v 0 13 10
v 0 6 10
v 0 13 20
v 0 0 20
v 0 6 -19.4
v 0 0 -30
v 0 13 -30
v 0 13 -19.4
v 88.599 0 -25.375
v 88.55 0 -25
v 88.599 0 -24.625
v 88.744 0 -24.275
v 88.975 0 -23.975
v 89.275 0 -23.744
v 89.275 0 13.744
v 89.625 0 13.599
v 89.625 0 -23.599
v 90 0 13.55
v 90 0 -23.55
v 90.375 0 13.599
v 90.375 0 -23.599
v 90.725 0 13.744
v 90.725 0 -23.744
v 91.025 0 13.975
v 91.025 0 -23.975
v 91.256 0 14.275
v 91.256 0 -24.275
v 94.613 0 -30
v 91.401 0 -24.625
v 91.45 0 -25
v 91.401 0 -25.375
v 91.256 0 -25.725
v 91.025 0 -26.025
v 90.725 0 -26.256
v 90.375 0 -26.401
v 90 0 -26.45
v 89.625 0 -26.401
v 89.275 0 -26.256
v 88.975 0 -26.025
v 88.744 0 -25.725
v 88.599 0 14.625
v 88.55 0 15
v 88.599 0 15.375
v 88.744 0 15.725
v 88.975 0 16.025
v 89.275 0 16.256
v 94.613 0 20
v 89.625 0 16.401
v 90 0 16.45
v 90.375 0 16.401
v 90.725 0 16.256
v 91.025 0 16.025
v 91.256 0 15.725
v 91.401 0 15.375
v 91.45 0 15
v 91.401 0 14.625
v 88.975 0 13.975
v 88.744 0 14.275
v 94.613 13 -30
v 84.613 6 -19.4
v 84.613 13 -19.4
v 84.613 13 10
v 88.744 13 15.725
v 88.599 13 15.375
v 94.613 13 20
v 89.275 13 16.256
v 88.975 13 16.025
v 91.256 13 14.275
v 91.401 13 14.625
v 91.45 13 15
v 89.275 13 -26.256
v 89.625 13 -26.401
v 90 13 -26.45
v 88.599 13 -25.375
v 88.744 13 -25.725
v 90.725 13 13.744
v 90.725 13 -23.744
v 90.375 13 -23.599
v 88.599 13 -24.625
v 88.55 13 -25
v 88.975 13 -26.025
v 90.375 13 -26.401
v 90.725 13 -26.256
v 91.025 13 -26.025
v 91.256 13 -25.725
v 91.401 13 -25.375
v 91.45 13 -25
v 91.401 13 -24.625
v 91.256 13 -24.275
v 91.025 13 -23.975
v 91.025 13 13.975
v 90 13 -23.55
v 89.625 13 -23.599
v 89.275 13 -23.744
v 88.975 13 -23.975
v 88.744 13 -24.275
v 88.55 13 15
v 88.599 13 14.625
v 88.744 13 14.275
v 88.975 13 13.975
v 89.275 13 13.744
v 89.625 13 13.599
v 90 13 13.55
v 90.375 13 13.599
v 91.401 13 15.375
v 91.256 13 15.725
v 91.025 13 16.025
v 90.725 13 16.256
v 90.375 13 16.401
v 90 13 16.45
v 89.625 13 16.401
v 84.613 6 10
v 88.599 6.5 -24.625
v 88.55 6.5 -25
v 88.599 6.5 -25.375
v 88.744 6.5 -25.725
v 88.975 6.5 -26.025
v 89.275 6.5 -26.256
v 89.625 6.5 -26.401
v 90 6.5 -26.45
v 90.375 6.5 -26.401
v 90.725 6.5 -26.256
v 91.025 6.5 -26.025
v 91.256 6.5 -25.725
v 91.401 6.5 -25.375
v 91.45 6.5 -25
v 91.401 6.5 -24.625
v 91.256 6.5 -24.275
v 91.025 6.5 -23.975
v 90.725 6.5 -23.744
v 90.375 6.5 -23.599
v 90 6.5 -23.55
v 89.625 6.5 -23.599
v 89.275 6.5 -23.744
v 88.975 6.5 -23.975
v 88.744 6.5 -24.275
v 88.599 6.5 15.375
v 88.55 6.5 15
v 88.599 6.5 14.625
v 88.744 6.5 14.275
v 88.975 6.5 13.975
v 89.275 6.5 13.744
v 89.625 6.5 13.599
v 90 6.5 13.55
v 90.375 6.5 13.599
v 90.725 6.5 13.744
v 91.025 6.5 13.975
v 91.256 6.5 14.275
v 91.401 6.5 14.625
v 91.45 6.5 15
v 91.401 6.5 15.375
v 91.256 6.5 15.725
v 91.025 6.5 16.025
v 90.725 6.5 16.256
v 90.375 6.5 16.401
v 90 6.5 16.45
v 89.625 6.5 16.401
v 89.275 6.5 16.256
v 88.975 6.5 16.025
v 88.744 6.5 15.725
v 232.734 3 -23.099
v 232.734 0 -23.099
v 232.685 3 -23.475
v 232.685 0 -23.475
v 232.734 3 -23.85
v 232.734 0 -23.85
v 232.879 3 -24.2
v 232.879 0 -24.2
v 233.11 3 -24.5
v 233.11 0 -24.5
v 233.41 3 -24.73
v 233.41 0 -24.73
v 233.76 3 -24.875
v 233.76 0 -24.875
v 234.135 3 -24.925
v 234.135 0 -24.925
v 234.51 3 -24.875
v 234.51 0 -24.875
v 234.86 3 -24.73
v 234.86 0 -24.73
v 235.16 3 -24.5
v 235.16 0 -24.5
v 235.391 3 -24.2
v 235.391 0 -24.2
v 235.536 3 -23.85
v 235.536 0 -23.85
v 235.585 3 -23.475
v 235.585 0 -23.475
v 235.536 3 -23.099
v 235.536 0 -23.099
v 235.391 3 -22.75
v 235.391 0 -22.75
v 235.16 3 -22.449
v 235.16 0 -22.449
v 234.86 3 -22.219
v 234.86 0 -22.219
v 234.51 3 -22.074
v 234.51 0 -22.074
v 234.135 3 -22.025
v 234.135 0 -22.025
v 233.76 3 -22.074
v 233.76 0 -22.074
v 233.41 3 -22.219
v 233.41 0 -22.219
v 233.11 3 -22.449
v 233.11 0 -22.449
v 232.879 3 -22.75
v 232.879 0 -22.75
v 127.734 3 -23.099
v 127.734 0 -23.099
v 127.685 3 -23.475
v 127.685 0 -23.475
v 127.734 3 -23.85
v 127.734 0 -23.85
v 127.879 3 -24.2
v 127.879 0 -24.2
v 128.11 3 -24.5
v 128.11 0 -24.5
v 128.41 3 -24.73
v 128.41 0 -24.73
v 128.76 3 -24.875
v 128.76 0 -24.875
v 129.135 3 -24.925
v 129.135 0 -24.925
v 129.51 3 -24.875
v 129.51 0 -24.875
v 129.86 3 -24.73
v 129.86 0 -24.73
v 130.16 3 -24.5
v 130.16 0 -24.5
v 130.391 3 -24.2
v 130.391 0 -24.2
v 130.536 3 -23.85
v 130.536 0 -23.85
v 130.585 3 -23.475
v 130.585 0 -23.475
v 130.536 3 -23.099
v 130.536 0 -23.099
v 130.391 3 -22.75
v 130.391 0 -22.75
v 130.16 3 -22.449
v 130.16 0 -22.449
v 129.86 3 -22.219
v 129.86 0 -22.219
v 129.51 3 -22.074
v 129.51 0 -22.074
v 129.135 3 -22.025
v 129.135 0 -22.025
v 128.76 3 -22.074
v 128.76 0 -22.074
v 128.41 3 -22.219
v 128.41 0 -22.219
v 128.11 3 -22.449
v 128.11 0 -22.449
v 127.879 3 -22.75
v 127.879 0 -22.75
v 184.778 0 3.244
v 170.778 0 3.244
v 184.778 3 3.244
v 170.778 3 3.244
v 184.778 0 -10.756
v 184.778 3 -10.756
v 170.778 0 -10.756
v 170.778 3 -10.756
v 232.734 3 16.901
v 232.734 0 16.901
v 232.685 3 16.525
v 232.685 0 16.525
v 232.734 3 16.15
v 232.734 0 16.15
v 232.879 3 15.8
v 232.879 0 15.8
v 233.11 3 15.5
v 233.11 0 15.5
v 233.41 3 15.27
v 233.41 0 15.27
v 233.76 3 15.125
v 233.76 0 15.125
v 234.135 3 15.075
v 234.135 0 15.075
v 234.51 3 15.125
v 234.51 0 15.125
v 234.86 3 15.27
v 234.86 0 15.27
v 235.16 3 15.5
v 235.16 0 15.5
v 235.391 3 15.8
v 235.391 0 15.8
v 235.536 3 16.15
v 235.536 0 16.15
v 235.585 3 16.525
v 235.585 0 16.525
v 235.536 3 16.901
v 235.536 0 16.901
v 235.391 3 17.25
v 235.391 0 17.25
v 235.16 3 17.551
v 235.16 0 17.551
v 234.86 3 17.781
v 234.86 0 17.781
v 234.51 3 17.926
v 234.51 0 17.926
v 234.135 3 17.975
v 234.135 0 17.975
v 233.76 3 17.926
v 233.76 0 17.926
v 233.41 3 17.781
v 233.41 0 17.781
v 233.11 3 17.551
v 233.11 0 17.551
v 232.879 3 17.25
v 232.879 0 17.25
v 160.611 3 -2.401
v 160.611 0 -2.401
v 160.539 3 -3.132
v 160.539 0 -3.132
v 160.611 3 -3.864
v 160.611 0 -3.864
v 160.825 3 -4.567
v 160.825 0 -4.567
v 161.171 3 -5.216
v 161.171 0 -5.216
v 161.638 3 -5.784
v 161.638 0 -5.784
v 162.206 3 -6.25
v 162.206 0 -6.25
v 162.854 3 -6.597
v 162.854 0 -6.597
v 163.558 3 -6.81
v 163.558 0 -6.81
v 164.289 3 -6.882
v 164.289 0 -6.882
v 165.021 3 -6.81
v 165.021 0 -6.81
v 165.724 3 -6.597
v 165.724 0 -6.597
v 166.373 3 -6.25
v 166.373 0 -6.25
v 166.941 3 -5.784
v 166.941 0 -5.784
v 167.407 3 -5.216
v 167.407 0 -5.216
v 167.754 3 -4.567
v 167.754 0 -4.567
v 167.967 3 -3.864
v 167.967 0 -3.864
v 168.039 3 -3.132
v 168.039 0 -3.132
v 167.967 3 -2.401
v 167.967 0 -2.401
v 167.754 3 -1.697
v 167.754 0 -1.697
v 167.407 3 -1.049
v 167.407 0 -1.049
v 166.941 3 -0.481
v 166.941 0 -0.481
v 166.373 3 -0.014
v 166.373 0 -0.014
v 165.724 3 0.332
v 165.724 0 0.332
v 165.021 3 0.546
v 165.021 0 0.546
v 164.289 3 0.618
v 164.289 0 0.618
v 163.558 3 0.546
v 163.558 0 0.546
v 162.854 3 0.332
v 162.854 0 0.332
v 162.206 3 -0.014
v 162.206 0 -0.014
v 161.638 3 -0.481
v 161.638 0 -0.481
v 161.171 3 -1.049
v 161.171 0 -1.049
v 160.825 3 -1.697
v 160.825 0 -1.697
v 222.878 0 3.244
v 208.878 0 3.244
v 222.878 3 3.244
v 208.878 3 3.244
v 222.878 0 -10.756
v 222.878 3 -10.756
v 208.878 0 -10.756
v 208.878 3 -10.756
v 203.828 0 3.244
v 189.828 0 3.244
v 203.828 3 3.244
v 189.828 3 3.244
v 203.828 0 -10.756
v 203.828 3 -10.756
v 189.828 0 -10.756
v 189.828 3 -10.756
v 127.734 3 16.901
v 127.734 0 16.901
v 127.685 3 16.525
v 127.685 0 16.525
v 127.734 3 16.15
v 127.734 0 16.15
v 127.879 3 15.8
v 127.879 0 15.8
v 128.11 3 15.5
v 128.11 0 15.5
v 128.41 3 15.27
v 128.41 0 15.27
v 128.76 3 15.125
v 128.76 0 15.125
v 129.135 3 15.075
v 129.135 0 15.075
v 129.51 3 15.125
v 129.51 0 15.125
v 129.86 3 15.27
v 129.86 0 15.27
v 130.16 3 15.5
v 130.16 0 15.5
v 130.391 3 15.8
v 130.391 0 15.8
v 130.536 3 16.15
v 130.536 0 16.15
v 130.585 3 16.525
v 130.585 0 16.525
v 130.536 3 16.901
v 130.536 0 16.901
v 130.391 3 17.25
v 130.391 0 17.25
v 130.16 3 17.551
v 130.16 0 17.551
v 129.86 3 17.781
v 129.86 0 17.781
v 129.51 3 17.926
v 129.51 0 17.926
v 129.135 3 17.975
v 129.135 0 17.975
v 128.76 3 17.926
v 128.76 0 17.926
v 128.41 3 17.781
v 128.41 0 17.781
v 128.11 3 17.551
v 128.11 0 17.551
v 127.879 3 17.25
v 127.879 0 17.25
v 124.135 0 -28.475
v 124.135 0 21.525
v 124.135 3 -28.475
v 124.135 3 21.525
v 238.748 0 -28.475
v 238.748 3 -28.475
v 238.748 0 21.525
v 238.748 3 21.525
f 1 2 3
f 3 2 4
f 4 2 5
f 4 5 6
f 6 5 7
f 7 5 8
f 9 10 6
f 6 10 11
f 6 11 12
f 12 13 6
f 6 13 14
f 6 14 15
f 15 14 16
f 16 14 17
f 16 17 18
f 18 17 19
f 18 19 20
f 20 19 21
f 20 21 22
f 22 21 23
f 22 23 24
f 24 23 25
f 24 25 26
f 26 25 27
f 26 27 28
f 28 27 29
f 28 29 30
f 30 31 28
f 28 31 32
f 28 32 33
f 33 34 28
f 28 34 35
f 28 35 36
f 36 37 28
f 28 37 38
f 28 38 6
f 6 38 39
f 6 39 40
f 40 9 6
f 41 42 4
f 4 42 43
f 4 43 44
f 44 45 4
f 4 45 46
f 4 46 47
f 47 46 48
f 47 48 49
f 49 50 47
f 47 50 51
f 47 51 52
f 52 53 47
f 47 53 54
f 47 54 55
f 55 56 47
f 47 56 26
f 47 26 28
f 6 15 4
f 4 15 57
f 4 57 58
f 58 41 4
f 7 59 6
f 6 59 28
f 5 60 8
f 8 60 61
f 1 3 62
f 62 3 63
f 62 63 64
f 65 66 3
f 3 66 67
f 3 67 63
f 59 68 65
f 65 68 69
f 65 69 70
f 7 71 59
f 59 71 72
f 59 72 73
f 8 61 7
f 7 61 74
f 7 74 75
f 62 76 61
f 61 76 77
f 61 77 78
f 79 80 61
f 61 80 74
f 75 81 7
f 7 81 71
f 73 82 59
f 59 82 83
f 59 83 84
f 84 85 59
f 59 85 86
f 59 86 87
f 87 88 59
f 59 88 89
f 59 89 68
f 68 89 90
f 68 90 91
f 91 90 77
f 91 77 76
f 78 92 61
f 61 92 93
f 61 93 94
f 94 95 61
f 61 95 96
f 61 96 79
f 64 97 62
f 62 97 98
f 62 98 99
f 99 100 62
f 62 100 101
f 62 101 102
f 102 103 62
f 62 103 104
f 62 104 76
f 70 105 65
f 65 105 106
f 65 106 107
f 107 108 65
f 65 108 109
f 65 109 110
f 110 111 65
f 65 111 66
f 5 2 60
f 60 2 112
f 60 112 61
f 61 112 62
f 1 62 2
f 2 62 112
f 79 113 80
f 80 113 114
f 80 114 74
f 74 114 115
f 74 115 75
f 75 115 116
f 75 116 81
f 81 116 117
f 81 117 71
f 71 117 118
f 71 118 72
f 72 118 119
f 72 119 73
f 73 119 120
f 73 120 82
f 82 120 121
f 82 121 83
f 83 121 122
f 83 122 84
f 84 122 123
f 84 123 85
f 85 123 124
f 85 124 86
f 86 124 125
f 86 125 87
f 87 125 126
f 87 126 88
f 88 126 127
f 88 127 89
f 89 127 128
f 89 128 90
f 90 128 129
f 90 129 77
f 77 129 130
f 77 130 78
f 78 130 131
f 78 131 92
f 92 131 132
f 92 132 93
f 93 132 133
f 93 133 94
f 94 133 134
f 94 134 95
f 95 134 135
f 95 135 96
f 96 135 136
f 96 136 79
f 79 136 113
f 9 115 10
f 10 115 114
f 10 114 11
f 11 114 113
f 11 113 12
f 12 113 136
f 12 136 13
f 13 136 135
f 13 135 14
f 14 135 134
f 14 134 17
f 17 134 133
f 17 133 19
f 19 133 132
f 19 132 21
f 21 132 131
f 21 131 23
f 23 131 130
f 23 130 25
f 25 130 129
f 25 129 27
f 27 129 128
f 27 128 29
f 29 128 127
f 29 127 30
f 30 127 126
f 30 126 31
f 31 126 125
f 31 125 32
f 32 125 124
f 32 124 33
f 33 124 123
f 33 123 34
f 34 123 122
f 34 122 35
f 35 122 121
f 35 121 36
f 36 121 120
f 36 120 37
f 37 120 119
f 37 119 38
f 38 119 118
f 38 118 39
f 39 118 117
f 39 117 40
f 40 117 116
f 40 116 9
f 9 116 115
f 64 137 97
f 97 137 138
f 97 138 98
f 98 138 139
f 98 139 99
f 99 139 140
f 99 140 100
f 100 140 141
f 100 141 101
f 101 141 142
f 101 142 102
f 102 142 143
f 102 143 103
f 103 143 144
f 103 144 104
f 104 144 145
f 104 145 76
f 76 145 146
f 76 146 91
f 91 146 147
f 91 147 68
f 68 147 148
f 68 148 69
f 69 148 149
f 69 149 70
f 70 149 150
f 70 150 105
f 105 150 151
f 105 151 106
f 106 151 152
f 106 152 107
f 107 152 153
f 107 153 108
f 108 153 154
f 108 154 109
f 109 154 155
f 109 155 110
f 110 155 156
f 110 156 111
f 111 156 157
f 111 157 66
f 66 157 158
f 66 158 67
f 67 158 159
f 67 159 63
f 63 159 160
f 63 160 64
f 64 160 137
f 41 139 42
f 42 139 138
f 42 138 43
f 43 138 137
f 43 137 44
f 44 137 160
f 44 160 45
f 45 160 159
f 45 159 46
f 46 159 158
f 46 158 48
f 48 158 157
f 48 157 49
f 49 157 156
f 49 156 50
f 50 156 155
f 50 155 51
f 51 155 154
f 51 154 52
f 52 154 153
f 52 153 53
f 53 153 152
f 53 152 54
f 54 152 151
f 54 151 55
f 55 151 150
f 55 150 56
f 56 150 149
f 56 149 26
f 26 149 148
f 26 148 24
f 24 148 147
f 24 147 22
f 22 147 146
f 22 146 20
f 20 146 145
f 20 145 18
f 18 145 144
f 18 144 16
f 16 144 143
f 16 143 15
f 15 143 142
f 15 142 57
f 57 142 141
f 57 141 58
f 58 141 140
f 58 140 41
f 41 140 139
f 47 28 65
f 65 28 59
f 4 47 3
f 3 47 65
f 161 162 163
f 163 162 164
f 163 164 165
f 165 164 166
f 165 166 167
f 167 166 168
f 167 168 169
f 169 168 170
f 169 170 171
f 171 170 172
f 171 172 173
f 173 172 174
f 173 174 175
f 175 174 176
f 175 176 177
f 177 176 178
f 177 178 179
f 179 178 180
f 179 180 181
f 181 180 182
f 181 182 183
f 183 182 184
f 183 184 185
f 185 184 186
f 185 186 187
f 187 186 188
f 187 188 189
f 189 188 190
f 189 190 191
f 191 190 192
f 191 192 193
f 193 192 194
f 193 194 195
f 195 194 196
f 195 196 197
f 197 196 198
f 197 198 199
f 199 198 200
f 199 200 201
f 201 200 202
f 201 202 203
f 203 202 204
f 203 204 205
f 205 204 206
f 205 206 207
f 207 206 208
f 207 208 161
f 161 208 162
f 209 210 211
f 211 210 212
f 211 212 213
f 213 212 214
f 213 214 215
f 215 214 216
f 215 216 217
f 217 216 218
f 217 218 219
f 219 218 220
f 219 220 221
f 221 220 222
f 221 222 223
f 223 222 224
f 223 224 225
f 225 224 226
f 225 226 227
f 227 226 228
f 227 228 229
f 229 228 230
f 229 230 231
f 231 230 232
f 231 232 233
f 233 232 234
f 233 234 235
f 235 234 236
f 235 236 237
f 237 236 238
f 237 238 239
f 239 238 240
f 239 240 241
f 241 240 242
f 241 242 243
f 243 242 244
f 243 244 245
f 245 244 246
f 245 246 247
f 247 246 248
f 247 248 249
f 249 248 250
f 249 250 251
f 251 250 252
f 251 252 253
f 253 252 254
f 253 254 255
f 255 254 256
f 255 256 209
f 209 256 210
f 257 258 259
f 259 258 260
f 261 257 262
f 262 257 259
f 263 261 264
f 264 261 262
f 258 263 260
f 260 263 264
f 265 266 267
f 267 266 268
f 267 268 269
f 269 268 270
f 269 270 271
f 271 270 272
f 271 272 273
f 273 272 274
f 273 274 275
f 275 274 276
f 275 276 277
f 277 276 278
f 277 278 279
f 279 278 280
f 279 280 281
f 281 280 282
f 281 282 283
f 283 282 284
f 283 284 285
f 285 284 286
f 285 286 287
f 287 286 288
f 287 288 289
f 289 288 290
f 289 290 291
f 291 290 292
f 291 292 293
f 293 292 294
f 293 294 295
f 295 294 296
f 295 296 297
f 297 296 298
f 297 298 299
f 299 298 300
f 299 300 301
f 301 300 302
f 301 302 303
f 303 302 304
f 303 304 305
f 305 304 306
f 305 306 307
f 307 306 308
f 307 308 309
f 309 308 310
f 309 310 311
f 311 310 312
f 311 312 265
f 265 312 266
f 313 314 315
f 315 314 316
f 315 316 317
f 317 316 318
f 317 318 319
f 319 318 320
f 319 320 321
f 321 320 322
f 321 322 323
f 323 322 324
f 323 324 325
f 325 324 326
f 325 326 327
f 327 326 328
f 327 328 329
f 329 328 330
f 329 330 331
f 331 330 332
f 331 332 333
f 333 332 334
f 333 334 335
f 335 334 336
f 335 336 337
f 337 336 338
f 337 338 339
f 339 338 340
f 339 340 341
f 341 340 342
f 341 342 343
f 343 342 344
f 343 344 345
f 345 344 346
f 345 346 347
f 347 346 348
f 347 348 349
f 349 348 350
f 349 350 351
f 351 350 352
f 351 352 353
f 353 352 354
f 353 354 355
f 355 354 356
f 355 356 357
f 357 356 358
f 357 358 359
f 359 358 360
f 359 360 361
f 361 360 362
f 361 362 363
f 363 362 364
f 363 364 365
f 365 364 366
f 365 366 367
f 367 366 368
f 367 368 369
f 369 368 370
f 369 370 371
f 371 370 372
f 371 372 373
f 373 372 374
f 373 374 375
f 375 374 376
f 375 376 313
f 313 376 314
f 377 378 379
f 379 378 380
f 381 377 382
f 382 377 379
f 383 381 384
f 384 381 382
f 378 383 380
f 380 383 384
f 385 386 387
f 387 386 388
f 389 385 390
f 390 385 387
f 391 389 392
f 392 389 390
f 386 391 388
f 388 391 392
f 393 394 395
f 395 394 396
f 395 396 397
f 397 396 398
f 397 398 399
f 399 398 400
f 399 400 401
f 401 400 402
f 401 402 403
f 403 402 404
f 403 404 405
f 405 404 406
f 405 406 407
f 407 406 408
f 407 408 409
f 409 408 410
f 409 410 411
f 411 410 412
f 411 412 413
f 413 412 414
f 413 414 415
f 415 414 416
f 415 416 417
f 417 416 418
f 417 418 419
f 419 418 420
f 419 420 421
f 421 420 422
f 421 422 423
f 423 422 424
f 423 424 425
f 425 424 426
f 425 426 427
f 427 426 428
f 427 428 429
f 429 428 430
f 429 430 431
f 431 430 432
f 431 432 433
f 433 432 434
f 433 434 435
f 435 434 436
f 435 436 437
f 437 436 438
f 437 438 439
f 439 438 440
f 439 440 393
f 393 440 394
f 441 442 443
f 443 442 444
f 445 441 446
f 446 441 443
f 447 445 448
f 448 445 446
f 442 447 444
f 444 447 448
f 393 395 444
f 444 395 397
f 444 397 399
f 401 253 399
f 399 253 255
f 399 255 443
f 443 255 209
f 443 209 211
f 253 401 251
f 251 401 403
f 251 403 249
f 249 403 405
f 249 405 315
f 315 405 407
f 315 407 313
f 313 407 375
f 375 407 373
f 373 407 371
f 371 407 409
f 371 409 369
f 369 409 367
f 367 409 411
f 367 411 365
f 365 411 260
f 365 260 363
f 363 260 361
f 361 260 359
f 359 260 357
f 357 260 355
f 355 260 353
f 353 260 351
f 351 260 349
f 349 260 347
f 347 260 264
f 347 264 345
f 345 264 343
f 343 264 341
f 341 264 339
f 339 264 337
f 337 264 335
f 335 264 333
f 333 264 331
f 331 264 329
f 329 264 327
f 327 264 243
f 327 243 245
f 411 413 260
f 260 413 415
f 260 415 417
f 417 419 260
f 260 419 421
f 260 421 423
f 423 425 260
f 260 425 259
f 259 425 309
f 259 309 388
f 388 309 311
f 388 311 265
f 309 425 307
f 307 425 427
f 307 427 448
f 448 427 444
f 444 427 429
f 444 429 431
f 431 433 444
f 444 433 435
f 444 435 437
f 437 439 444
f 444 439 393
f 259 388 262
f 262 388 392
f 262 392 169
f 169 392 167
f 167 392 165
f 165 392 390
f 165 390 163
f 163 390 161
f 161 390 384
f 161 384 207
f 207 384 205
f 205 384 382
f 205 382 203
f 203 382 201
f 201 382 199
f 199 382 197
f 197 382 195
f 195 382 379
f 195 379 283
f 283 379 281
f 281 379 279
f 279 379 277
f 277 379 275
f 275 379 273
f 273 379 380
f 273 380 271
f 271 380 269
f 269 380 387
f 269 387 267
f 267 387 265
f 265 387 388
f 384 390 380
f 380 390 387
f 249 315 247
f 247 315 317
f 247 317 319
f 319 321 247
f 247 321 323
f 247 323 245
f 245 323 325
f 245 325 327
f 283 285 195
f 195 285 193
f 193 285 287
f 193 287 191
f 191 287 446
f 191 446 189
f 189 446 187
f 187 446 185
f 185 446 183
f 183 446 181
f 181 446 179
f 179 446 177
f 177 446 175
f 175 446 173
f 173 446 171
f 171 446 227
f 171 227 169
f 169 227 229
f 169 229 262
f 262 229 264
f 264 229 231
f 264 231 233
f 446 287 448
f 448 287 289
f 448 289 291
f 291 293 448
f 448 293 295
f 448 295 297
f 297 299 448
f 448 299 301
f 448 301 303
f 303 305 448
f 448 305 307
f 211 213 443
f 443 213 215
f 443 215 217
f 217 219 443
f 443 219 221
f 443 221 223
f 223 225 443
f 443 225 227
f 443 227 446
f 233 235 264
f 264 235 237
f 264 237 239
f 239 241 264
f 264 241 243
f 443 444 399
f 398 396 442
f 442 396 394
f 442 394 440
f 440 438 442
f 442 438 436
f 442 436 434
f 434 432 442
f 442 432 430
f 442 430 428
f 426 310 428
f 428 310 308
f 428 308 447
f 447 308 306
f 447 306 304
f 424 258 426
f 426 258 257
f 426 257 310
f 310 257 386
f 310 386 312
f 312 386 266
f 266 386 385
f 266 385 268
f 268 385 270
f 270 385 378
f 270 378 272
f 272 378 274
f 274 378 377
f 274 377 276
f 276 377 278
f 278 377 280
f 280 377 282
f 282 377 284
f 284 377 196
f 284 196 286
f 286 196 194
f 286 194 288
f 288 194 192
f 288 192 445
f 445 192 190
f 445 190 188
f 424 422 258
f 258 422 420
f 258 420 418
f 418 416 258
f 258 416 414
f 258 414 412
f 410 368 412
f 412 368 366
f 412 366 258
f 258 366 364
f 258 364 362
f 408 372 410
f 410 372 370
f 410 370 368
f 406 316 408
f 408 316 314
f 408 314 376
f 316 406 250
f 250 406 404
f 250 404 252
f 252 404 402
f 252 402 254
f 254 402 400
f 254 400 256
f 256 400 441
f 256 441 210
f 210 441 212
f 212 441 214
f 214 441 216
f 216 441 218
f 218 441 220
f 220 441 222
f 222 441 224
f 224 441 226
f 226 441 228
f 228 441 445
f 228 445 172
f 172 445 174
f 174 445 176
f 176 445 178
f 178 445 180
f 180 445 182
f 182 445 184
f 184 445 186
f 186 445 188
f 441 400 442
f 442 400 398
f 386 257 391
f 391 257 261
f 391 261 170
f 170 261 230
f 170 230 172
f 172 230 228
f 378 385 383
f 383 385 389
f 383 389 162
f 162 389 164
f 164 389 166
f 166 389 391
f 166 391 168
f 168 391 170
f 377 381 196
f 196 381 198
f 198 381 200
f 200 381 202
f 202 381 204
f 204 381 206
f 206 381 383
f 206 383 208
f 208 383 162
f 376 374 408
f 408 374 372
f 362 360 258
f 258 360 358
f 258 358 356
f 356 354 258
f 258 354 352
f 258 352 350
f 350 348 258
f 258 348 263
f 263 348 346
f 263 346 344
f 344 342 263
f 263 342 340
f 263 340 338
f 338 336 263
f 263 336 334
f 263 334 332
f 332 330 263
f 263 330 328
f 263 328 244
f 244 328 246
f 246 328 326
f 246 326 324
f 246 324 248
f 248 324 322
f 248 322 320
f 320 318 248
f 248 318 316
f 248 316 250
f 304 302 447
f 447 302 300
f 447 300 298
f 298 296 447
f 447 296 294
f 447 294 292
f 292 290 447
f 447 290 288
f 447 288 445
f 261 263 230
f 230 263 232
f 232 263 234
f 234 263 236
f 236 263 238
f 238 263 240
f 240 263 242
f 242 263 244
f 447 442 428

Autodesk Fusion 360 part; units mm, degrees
sketch "Sketch1" plane through (0, 0, 0) normal (0, 1, 0) x (1, 0, 0)
  line L0 (-9.7865, 19.4) -> (84.6135, 19.4)
  line L1 (84.6135, 19.4) -> (84.6135, -10)
  line L2 (84.6135, -10) -> (-9.7865, -10)
  line L3 (-9.7865, -10) -> (-9.7865, 19.4)
  line L4 (-20, 30) -> (94.6135, 30)
  line L5 (94.6135, 30) -> (94.6135, -20)
  line L6 (94.6135, -20) -> (-20, -20)
  line L7 (-20, -20) -> (-20, 30)
  circle A0 centre (-15, 25) radius 1.45
  circle A1 centre (-15, -15) radius 1.45
  circle A2 centre (90, -15) radius 1.45
  circle A3 centre (90, 25) radius 1.45
  dimension "d1" = 94.4
  dimension "d2" = 29.4
  dimension "d5" = 2.9
  dimension "d6" = 2.9
  dimension "d7" = 2.9
  dimension "d8" = 2.9
extrude "Extrude4" add sketch "Sketch1" along normal blind 13 makes body 1
extrude "Extrude5" add sketch "Sketch1" along normal blind 3 contours L0 L1 L2 L3 bodies 1
sketch "kbplate" plane through (0, 0, 0) normal (0, 1, 0) x (1, 0, 0)
  line L0 (170.778, -3.2441) -> (184.778, -3.2441)
  line L1 (184.778, 10.7559) -> (170.778, 10.7559)
  line L2 (184.778, -3.2441) -> (184.778, 10.7559)
  line L3 (170.778, 10.7559) -> (170.778, -3.2441)
  line L4 (189.828, -3.2441) -> (203.828, -3.2441)
  line L5 (203.828, 10.7559) -> (189.828, 10.7559)
  line L6 (203.828, -3.2441) -> (203.828, 10.7559)
  line L7 (189.828, 10.7559) -> (189.828, -3.2441)
  line L8 (208.878, -3.2441) -> (222.878, -3.2441)
  line L9 (222.878, 10.7559) -> (208.878, 10.7559)
  line L10 (222.878, -3.2441) -> (222.878, 10.7559)
  line L11 (208.878, 10.7559) -> (208.878, -3.2441)
  circle A0 centre (164.2894, 3.1324) radius 3.75
  circle A1 centre (129.135, -16.5252) radius 1.45
  line L12 (238.7484, -21.5252) -> (124.135, -21.5252)
  line L13 (124.135, 28.4748) -> (238.7484, 28.4748)
  circle A2 centre (234.135, 23.4748) radius 1.45
  circle A3 centre (234.135, -16.5252) radius 1.45
  circle A4 centre (129.135, 23.4748) radius 1.45
  line L14 (238.7484, 28.4748) -> (238.7484, -21.5252)
  line L15 (124.135, -21.5252) -> (124.135, 28.4748)
  point P0 (144.135, -1.5252)
  dimension "d21" = 7.5
  dimension "d30" = 2.9
  dimension "d31" = 2.9
  dimension "d32" = 2.9
  dimension "d33" = 2.9
extrude "Extrude6" add 1 faces at (53.1468, 3, 0.2) along direction (0, 1, 0) blind 3 on bodies 1 bodies 1
extrude "Extrude9" add sketch "kbplate" along normal blind 3 separate body makes body 2
extrude "Extrude10" cut 1 faces at (-20, 4.3333, 3.3333) along direction (1, 0, 0) blind 10 on bodies 1 bodies 1
extrude "Extrude11" cut 1 faces at (-10, 4.3333, 3.3333) along direction (1, 0, 0) blind 10 on bodies 1 bodies 1
sketch "Sketch6" plane through (0, 0, 0) normal (1, 0, 0) x (0, 0, -1)
